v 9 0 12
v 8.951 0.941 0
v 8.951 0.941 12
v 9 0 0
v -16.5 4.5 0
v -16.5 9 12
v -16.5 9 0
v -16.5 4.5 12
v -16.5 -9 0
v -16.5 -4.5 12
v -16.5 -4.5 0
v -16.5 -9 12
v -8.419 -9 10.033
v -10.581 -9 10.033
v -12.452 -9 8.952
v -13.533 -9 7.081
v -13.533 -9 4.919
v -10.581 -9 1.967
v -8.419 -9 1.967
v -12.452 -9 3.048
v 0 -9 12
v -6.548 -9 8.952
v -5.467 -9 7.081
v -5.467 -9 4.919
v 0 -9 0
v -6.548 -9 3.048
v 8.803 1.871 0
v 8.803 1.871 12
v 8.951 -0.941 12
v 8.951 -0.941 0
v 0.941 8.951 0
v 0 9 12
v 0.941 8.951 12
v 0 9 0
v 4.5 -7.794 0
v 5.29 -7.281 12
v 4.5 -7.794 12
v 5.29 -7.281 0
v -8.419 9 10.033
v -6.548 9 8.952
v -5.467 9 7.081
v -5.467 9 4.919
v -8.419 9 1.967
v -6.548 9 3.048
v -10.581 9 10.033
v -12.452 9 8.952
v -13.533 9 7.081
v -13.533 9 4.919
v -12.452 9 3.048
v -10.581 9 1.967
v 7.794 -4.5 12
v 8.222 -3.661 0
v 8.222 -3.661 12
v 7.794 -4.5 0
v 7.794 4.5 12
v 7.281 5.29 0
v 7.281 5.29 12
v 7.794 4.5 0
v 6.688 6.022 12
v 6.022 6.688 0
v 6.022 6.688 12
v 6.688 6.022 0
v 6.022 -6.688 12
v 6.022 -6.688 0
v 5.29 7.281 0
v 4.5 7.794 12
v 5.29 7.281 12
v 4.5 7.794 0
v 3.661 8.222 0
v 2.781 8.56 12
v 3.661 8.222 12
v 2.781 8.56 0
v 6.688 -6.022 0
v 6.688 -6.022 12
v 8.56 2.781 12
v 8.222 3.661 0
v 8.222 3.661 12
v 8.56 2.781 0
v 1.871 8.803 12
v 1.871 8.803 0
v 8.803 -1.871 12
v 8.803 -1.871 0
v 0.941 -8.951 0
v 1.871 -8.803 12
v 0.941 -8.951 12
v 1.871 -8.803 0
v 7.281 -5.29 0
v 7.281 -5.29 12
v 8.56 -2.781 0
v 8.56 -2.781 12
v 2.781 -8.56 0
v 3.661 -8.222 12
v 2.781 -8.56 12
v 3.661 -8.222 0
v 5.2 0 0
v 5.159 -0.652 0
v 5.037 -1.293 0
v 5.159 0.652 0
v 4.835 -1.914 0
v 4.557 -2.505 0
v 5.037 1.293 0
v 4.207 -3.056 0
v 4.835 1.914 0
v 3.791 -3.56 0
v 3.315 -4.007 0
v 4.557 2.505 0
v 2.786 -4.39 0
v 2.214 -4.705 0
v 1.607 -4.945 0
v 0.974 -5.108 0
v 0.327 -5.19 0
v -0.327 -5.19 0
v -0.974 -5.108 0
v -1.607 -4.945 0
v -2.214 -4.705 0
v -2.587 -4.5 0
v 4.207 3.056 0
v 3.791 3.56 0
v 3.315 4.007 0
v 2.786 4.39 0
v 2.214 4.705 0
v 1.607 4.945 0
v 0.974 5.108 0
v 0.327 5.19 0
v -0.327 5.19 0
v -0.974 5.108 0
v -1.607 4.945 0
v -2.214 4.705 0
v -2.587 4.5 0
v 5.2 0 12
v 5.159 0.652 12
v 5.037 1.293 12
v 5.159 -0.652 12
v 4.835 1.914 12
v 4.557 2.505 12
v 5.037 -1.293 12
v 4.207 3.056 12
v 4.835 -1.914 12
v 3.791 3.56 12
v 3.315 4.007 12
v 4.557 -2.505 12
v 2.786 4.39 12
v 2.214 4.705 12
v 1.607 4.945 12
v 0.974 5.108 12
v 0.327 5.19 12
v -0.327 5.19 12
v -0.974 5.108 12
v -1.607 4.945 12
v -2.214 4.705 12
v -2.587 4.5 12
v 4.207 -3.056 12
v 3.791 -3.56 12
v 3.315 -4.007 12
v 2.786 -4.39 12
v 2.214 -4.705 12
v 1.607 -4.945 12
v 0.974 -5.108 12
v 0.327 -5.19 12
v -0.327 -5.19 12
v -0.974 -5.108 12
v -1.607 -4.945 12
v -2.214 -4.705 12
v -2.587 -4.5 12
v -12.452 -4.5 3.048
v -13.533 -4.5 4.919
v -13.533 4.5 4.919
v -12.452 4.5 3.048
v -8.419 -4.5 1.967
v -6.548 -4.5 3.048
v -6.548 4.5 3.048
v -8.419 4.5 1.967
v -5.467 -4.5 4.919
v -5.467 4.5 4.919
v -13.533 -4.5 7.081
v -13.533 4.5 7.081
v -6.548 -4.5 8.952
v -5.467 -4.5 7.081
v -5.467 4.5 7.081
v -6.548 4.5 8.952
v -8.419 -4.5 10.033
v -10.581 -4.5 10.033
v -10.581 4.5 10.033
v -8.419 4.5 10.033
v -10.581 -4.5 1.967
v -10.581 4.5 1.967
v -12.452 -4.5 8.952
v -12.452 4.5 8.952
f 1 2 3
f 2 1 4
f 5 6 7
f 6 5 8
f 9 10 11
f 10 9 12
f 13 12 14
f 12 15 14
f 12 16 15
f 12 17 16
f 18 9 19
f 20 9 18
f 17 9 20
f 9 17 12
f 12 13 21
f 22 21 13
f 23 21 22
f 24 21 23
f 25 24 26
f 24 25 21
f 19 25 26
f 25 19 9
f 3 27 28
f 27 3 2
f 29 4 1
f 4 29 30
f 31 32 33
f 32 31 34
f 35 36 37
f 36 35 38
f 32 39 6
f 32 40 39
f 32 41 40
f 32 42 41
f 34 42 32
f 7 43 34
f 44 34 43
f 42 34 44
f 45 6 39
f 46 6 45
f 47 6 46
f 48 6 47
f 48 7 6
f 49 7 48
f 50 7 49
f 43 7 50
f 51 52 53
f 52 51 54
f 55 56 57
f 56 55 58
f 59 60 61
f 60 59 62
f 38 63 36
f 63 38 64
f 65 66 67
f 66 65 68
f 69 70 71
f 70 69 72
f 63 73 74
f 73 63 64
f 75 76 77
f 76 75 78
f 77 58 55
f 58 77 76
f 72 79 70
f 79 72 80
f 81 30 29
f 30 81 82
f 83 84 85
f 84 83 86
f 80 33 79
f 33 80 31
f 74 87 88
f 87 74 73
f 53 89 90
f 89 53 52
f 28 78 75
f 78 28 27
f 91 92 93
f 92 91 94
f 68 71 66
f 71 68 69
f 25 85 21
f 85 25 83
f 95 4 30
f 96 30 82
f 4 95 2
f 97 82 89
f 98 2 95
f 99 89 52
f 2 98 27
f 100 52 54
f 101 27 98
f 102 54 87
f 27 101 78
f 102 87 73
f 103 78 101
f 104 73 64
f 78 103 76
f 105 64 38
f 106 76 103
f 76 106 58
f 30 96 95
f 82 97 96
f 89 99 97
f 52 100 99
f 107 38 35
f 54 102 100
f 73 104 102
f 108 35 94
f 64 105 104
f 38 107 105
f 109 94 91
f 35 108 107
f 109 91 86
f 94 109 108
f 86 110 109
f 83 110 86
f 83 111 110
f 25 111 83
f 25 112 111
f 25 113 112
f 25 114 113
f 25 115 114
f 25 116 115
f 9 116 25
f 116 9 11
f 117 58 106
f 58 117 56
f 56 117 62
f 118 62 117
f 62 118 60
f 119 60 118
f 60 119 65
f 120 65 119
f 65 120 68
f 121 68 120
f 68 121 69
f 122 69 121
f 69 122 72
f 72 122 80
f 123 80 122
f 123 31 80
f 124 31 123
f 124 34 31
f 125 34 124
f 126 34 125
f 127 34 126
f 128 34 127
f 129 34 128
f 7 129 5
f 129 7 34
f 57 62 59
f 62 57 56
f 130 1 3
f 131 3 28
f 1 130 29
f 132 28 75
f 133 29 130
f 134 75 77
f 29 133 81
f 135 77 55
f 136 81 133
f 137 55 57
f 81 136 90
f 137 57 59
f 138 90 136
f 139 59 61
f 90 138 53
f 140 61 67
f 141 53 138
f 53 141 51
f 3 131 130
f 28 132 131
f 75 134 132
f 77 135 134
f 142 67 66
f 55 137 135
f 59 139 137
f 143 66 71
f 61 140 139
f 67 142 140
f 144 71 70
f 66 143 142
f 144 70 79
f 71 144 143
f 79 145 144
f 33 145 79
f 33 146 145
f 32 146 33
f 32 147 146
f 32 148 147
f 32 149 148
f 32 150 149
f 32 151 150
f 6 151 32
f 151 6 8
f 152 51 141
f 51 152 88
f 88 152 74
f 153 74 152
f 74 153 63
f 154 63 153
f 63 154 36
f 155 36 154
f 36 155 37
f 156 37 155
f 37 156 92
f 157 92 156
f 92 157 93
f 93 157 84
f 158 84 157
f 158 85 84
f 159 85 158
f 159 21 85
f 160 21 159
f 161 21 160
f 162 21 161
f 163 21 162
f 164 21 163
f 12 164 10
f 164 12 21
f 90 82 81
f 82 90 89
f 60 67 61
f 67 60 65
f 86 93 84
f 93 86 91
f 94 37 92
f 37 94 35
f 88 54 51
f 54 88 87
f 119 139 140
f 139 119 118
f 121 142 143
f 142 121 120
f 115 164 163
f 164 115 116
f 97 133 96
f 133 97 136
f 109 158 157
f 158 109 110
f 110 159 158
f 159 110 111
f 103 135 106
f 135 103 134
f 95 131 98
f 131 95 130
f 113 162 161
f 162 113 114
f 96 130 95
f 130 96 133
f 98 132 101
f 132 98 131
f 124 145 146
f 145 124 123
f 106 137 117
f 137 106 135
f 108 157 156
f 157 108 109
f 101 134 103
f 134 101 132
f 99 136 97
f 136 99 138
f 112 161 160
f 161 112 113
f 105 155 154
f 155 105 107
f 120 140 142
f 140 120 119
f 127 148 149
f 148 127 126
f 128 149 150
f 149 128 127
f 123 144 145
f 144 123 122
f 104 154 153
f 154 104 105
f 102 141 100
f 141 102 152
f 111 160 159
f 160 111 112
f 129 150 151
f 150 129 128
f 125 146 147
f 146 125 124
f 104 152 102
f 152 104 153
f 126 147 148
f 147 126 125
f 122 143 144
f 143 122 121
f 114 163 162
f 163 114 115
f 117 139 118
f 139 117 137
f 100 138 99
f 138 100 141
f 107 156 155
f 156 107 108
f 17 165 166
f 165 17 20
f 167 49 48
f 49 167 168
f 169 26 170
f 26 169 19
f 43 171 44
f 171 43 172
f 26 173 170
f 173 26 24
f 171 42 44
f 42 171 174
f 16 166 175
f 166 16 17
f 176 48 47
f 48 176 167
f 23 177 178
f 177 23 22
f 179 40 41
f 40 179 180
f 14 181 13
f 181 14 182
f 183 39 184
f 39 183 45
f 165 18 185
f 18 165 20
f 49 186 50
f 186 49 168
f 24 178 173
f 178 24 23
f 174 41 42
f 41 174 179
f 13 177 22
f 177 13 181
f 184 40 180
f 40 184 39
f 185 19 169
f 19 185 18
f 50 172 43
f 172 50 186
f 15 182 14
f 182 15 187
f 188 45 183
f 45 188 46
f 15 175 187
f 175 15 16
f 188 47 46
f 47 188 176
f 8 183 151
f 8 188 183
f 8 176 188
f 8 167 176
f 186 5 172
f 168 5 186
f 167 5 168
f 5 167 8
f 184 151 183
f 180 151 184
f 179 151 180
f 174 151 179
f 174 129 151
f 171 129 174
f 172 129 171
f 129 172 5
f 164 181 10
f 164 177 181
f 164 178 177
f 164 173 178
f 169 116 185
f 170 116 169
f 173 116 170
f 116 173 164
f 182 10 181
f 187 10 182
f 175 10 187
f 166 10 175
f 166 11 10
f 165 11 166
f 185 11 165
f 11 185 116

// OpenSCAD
/**
 * 
 * M8M10_TConnector.scad
 * 
 * Created by Diego Viejo
 * 
 * 14/April/2020
 * 
 */

 diam1 = 10;
 diam2 = 8;
 
difference()
{
    hull()
    {
        cylinder(d=diam1+8, h=diam2+4, $fn=60);
        translate([-diam1/2-0.5-diam2-3, -(diam1+8)/2 , 0]) cube([8, diam1+8, diam2+4]);
    }
    
    #translate([0, 0, -1]) cylinder(d=diam1+0.4, h = diam2+4+2, $fn=50);
    
    #translate([-diam1/2-0.5-diam2/2, -15, (diam2+4)/2]) rotate([-90, 360/24, 0]) cylinder(d=diam2+0.35, h=30, $fn=12);
    
    translate([-20, -(diam1-1)/2, -1]) cube([20, (diam1-1), diam2+4+2]);
}
